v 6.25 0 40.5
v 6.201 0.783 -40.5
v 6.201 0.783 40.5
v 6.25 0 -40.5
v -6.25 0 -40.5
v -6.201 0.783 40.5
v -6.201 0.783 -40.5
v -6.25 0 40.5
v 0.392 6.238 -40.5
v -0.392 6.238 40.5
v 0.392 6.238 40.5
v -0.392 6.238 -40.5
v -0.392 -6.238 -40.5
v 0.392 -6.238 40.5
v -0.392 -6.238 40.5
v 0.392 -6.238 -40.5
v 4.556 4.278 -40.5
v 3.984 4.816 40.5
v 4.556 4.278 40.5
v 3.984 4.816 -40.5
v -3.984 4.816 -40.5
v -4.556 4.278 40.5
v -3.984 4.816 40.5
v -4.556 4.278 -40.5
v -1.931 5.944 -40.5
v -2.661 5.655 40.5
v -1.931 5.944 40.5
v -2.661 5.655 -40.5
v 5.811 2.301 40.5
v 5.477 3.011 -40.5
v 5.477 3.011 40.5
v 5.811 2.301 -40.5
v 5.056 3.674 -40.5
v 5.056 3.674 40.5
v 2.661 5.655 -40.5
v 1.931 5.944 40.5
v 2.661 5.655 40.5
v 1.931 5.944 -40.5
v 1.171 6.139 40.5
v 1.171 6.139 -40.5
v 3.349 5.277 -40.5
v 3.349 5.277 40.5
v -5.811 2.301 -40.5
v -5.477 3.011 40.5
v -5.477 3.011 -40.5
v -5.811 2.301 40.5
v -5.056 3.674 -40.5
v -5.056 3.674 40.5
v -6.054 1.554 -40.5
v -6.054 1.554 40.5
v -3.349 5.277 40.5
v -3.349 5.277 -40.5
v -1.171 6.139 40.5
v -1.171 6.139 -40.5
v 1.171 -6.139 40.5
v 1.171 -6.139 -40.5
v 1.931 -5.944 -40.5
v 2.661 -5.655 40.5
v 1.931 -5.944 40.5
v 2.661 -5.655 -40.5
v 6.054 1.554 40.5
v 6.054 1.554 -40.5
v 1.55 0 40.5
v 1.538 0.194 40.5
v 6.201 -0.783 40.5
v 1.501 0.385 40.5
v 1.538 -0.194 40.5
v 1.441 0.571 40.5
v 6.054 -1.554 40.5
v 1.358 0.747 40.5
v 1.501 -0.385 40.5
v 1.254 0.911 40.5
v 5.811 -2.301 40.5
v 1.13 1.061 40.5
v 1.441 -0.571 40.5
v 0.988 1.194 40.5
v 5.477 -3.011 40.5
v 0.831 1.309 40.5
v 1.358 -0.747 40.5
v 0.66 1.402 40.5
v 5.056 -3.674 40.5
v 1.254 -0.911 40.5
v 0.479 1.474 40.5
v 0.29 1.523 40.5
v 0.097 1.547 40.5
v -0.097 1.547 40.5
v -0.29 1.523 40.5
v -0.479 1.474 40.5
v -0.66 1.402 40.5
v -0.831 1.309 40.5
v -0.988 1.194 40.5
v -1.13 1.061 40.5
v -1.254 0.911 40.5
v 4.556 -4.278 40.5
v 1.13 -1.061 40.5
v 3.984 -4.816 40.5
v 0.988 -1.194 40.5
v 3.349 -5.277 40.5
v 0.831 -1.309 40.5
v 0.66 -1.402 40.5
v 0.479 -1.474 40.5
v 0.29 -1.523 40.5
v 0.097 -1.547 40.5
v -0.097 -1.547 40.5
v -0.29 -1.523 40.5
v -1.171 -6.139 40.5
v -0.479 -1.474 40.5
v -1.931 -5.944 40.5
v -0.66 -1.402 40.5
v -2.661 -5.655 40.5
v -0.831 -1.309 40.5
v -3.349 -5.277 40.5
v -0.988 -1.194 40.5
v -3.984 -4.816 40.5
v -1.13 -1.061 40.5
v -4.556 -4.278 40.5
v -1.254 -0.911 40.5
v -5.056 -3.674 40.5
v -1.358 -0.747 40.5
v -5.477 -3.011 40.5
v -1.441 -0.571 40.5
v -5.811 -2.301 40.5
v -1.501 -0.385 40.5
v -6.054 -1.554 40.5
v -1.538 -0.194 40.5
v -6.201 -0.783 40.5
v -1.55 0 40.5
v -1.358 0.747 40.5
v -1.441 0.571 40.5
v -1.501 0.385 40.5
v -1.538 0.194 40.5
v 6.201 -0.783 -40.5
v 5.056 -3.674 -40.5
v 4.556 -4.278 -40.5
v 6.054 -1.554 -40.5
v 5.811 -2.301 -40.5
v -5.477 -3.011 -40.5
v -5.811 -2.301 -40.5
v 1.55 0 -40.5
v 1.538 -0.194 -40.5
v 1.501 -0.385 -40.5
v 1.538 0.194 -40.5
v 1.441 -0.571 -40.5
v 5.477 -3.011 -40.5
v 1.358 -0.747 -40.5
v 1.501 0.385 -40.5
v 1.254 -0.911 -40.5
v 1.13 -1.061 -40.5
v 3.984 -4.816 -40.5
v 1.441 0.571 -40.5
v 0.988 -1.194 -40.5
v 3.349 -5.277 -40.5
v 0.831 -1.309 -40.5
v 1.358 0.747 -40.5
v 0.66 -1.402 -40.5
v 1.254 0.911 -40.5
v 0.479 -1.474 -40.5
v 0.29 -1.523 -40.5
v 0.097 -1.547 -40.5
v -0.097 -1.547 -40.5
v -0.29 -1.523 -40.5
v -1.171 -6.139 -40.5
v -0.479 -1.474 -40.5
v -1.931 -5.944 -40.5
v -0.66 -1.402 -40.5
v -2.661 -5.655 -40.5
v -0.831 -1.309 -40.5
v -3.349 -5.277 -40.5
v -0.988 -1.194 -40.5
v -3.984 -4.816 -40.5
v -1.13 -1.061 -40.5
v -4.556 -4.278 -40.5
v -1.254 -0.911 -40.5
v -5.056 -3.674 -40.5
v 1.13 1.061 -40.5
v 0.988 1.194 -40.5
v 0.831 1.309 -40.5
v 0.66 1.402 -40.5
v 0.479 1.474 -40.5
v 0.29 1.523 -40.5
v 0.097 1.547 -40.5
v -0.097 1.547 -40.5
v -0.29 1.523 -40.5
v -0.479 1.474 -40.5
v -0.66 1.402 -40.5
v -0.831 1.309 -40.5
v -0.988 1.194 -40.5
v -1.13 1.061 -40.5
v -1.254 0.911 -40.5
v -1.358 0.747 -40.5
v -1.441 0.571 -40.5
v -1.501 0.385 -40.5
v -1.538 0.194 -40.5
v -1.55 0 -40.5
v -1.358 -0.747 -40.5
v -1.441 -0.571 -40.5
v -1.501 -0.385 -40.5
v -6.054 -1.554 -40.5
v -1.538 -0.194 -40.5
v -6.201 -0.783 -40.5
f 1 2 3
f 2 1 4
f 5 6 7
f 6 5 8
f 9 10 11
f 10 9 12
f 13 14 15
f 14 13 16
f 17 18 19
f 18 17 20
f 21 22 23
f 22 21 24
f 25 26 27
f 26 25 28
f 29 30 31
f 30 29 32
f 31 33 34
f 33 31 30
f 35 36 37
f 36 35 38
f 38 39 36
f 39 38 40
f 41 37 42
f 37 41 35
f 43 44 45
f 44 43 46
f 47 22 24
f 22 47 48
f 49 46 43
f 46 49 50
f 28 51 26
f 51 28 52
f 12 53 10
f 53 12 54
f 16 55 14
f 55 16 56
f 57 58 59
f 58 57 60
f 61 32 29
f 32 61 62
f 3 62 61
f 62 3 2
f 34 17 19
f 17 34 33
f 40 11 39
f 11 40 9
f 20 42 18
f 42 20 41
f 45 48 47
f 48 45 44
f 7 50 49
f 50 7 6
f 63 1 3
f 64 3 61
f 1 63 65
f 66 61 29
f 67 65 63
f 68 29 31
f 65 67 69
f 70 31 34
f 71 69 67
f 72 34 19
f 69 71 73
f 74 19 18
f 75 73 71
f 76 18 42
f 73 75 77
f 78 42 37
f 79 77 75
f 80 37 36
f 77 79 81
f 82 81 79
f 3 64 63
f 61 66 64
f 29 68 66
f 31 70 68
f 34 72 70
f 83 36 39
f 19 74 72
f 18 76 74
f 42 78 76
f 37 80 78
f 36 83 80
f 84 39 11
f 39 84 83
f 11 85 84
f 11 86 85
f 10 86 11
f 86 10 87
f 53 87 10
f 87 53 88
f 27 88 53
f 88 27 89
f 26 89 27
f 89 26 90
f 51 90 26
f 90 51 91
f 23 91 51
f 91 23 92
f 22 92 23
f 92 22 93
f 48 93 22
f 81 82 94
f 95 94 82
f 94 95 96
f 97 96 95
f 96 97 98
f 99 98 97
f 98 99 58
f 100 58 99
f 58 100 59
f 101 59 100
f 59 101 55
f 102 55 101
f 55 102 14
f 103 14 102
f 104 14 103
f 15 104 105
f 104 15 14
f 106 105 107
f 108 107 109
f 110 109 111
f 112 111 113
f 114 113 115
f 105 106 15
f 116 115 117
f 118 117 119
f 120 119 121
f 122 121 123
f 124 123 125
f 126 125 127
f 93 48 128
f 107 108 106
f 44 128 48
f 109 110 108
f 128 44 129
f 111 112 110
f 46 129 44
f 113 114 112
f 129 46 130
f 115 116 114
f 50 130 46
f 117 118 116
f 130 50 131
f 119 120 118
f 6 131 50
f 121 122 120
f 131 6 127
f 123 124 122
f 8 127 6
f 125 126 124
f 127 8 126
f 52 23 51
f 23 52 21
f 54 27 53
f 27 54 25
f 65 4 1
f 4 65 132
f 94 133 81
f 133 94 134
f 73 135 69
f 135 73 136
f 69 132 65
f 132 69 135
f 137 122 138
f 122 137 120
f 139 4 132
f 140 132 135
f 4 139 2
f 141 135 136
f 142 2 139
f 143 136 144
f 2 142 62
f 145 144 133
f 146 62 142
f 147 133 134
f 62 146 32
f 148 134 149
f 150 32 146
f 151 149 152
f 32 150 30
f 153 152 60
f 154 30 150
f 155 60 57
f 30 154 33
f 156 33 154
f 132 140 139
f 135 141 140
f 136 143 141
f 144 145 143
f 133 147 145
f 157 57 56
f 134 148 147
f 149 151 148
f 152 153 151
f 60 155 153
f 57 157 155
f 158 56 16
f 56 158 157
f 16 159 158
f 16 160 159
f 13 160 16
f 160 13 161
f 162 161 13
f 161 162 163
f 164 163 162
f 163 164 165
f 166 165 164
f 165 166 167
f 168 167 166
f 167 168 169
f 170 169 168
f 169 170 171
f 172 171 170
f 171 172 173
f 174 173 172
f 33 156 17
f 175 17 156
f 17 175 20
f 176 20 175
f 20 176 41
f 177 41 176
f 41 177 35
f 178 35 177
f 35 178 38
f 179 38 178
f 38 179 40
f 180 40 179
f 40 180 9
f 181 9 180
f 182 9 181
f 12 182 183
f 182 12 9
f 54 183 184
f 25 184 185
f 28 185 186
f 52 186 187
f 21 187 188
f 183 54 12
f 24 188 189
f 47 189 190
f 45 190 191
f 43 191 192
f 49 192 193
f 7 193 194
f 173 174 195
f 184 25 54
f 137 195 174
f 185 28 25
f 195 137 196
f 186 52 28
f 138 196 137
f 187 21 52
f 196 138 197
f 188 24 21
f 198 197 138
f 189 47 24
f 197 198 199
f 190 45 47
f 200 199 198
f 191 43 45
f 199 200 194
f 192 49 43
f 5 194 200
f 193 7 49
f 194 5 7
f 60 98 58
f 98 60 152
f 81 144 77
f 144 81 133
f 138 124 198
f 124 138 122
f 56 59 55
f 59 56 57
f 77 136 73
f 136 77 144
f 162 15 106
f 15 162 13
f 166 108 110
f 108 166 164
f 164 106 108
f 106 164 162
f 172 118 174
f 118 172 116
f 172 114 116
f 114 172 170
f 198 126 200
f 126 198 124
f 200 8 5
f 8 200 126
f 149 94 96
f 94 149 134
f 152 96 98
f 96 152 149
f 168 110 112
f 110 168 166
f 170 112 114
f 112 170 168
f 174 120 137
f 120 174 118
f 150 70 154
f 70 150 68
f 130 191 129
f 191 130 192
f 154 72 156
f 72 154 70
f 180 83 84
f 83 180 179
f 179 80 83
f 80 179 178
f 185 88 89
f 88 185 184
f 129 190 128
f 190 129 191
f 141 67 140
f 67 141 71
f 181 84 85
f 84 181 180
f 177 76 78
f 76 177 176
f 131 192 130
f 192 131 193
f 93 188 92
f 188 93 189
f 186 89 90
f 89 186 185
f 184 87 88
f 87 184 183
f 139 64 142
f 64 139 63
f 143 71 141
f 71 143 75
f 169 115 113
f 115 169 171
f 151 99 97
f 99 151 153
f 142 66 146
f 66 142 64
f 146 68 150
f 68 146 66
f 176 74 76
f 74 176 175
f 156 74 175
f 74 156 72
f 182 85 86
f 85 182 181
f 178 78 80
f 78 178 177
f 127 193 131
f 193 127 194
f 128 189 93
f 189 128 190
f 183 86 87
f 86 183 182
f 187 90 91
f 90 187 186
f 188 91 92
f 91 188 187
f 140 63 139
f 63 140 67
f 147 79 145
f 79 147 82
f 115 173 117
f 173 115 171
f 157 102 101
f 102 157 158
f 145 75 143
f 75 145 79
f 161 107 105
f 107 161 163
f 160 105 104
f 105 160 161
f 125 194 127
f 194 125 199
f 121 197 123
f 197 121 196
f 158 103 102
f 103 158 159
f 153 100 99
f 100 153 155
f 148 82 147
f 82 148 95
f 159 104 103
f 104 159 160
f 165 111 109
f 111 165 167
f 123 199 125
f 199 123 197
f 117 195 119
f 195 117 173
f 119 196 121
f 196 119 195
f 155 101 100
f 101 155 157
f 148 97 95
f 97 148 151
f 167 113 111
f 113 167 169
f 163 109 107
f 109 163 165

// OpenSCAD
$fn = 50;


difference() {
	union() {
		translate(v = [0, 0, -40.5000000000]) {
			cylinder(h = 81, r = 6.2500000000);
		}
	}
	union() {
		translate(v = [0, 0, -100.0000000000]) {
			cylinder(h = 200, r = 1.5500000000);
		}
	}
}
